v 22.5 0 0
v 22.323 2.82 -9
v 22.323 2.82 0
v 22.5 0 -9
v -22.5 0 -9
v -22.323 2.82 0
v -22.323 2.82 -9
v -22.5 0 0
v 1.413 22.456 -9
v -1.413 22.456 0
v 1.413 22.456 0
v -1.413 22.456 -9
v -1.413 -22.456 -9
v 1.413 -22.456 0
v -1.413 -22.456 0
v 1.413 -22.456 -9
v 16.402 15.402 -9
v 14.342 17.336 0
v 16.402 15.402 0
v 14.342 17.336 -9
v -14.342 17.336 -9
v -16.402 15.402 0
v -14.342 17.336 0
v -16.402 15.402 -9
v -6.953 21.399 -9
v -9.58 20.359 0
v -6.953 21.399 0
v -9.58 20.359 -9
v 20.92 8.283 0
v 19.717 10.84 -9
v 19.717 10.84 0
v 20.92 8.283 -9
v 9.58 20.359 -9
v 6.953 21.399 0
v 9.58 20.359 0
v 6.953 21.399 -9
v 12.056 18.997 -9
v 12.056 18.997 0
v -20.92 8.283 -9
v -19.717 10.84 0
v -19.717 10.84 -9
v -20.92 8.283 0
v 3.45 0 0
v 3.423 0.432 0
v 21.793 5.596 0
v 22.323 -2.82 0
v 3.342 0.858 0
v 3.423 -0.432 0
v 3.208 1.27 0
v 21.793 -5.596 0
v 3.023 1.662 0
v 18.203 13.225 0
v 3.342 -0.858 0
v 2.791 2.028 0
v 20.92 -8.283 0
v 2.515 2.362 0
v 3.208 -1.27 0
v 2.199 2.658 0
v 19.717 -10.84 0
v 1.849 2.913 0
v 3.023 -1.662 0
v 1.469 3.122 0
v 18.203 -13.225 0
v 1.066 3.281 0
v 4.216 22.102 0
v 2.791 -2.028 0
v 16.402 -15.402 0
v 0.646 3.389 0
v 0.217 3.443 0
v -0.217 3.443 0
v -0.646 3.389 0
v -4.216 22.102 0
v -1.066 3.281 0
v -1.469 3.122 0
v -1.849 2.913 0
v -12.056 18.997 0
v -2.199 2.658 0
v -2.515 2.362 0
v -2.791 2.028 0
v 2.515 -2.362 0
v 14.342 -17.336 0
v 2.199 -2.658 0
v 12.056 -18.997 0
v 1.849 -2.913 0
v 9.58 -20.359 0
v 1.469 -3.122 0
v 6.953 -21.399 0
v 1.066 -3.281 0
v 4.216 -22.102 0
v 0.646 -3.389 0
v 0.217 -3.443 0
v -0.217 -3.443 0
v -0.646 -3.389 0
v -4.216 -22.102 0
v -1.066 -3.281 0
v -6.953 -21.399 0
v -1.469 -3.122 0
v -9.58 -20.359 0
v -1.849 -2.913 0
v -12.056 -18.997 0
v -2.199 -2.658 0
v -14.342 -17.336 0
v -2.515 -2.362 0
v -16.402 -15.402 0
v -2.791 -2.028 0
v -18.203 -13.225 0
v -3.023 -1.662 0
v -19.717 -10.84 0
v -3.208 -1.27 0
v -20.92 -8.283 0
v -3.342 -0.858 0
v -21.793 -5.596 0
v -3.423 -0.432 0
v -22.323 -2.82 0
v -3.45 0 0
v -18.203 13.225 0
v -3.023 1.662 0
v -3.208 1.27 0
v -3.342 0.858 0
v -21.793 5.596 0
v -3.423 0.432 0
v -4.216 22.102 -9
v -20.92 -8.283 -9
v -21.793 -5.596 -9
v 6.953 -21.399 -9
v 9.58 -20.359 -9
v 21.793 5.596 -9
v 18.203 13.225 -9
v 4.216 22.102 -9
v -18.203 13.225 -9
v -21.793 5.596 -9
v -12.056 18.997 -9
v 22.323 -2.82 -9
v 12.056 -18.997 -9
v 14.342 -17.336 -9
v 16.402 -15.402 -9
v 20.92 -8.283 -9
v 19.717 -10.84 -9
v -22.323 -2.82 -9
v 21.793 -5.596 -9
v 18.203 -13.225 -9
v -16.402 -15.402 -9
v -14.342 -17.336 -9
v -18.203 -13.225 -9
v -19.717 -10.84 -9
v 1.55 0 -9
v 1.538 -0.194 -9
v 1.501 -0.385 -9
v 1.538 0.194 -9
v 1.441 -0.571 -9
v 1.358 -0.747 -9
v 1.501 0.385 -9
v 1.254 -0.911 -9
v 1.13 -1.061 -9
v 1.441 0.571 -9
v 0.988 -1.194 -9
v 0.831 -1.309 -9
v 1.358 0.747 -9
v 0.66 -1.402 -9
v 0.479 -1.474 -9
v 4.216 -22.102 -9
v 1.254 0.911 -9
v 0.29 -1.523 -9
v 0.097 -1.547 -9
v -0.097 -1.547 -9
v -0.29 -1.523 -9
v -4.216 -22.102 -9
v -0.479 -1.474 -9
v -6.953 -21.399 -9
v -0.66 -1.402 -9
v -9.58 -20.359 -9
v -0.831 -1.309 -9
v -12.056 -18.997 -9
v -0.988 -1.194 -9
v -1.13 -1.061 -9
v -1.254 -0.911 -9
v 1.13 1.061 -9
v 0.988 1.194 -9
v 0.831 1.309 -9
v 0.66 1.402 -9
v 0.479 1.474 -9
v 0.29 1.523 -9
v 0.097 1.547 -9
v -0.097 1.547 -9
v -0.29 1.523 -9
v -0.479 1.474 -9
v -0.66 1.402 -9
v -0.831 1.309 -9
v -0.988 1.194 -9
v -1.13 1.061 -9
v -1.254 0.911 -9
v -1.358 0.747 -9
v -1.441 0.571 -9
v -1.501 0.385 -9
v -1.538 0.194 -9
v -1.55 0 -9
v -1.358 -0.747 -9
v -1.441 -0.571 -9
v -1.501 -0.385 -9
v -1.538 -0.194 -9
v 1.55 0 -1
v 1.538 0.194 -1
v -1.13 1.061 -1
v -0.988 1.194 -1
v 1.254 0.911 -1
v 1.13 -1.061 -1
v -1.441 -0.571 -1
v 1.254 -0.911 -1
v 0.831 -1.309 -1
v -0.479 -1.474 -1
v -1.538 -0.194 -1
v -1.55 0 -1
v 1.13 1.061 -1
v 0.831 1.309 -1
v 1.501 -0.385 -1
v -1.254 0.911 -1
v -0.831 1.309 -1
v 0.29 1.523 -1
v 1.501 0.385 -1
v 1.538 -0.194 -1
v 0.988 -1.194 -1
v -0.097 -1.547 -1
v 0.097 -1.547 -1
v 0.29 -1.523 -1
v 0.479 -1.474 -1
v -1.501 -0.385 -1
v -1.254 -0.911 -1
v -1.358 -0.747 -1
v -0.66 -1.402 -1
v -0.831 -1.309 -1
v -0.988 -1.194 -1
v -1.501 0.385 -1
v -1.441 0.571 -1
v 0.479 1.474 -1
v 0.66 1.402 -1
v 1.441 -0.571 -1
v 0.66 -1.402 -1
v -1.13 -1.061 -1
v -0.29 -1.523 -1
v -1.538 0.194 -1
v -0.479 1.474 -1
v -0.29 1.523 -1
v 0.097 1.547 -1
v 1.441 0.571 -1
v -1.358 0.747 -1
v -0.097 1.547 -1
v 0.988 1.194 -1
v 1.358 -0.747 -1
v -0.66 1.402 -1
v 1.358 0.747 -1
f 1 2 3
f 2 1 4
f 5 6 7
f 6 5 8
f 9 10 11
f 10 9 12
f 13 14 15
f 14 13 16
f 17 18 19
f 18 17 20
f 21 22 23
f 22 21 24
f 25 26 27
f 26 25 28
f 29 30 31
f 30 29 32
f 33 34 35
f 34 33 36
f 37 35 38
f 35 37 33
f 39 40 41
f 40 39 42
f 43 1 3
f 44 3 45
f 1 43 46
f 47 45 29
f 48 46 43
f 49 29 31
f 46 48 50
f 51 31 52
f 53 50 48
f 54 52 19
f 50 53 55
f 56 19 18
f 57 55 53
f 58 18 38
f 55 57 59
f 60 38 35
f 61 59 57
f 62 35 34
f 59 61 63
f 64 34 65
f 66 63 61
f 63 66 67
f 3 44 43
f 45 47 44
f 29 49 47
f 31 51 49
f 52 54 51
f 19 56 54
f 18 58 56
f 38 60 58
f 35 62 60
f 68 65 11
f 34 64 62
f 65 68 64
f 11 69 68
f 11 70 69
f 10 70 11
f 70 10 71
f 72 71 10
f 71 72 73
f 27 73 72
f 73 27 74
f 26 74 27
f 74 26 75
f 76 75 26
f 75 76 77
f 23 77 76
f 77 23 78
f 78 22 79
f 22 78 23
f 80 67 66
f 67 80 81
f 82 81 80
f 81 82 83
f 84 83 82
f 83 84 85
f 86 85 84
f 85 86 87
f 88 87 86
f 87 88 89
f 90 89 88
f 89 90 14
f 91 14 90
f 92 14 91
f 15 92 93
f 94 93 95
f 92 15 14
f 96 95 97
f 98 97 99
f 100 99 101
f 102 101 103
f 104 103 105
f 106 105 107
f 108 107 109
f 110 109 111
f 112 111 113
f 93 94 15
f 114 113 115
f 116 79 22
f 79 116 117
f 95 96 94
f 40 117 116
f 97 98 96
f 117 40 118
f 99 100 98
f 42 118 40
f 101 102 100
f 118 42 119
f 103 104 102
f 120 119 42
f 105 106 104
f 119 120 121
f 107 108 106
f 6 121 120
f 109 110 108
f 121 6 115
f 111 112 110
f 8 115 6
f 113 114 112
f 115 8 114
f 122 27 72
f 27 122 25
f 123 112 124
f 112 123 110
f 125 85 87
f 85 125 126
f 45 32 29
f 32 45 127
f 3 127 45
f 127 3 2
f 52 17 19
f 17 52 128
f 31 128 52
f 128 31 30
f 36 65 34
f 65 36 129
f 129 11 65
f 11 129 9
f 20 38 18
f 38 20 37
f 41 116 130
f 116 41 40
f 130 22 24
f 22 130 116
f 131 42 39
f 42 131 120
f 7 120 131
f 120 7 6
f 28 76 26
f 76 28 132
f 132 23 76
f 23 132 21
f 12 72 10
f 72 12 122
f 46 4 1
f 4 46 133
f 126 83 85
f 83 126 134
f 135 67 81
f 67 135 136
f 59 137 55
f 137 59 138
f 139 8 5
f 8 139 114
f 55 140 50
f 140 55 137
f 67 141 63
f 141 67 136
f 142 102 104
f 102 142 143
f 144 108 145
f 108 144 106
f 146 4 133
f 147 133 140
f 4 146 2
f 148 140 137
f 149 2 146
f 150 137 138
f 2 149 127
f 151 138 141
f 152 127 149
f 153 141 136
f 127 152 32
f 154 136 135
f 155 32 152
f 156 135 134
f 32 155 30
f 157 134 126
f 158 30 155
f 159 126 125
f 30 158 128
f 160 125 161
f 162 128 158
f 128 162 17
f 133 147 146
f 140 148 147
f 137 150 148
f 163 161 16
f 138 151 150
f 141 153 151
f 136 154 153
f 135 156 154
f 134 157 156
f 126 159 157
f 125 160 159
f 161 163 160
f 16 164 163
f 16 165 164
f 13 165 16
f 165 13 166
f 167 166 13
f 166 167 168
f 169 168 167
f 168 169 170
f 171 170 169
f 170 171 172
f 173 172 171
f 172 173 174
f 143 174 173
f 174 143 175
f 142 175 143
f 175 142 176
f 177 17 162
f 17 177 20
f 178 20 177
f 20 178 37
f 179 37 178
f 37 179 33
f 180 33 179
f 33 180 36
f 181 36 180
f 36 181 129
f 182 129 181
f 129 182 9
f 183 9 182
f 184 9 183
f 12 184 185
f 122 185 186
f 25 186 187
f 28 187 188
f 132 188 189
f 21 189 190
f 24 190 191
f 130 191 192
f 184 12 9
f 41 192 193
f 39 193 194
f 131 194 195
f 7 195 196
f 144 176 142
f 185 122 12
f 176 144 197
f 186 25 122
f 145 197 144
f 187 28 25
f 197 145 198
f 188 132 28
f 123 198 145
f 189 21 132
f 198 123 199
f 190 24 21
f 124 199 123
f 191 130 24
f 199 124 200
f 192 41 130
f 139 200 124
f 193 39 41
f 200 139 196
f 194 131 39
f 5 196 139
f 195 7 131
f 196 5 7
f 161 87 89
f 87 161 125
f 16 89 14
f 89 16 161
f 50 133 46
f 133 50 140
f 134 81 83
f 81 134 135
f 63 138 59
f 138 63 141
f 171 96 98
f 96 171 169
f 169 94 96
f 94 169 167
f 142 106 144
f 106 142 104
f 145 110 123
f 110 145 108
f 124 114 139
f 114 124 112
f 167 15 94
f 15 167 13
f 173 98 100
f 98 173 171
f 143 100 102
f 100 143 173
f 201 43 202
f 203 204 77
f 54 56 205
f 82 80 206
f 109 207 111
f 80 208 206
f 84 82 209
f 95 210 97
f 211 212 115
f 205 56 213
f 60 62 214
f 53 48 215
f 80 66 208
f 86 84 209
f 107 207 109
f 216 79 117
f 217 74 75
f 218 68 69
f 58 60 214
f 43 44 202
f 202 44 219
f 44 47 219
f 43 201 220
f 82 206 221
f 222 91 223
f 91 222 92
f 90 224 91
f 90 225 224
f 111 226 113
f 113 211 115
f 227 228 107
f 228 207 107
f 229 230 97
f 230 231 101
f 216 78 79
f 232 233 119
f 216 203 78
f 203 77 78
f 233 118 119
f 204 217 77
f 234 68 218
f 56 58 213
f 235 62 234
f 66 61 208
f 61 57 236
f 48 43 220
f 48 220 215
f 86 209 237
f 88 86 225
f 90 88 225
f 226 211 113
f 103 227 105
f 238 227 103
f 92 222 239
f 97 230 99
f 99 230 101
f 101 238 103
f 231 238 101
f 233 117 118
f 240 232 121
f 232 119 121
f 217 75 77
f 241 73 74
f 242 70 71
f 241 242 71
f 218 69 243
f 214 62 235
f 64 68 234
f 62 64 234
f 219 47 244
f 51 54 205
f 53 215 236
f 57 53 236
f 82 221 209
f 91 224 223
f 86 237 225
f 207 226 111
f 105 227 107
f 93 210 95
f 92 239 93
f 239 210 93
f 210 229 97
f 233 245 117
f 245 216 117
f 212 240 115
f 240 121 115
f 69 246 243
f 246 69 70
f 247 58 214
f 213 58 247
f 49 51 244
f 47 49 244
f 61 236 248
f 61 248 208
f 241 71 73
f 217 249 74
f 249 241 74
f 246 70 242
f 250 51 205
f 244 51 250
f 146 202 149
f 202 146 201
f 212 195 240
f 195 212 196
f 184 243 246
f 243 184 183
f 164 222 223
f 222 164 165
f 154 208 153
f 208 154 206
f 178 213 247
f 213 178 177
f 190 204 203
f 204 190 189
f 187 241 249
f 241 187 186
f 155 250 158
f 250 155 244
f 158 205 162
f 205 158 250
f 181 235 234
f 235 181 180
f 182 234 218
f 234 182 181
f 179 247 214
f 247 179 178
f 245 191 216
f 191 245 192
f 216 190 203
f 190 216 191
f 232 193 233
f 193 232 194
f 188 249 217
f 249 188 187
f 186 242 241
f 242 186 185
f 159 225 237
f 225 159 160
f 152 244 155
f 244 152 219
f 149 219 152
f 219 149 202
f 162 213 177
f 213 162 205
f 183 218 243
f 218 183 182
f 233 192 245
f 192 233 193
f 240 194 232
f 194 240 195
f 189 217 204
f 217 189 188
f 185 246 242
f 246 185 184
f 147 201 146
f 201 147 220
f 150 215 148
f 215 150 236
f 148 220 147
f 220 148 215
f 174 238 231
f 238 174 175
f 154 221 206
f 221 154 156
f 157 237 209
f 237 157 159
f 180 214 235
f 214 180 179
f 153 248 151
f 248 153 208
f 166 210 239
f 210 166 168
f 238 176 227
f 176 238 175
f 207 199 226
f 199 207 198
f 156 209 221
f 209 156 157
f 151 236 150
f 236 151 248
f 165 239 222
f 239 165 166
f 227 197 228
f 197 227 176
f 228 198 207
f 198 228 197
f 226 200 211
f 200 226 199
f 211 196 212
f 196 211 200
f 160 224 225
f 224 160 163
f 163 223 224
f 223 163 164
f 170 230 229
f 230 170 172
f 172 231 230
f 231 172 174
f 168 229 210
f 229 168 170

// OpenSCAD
$fn = 50;


difference() {
	union() {
		translate(v = [0, 0, -9.0000000000]) {
			cylinder(h = 9, r = 22.5000000000);
		}
		translate(v = [0, 0, -9.0000000000]) {
			cylinder(h = 9, r = 2.8750000000);
		}
	}
	union() {
		translate(v = [0, 0, 0]) {
			rotate(a = [0, 0, 0]) {
				difference() {
					union() {
						#translate(v = [0, 0, -9.0000000000]) {
							cylinder(h = 9, r = 1.2500000000);
						}
						#translate(v = [0, 0, -1.0000000000]) {
							cylinder(h = 1.0000000000, r1 = 1.5500000000, r2 = 3.4500000000);
						}
						#translate(v = [0, 0, -9.0000000000]) {
							cylinder(h = 9, r = 1.5500000000);
						}
						#translate(v = [0, 0, -9.0000000000]) {
							cylinder(h = 9, r = 1.2500000000);
						}
					}
					union();
				}
			}
		}
	}
}
